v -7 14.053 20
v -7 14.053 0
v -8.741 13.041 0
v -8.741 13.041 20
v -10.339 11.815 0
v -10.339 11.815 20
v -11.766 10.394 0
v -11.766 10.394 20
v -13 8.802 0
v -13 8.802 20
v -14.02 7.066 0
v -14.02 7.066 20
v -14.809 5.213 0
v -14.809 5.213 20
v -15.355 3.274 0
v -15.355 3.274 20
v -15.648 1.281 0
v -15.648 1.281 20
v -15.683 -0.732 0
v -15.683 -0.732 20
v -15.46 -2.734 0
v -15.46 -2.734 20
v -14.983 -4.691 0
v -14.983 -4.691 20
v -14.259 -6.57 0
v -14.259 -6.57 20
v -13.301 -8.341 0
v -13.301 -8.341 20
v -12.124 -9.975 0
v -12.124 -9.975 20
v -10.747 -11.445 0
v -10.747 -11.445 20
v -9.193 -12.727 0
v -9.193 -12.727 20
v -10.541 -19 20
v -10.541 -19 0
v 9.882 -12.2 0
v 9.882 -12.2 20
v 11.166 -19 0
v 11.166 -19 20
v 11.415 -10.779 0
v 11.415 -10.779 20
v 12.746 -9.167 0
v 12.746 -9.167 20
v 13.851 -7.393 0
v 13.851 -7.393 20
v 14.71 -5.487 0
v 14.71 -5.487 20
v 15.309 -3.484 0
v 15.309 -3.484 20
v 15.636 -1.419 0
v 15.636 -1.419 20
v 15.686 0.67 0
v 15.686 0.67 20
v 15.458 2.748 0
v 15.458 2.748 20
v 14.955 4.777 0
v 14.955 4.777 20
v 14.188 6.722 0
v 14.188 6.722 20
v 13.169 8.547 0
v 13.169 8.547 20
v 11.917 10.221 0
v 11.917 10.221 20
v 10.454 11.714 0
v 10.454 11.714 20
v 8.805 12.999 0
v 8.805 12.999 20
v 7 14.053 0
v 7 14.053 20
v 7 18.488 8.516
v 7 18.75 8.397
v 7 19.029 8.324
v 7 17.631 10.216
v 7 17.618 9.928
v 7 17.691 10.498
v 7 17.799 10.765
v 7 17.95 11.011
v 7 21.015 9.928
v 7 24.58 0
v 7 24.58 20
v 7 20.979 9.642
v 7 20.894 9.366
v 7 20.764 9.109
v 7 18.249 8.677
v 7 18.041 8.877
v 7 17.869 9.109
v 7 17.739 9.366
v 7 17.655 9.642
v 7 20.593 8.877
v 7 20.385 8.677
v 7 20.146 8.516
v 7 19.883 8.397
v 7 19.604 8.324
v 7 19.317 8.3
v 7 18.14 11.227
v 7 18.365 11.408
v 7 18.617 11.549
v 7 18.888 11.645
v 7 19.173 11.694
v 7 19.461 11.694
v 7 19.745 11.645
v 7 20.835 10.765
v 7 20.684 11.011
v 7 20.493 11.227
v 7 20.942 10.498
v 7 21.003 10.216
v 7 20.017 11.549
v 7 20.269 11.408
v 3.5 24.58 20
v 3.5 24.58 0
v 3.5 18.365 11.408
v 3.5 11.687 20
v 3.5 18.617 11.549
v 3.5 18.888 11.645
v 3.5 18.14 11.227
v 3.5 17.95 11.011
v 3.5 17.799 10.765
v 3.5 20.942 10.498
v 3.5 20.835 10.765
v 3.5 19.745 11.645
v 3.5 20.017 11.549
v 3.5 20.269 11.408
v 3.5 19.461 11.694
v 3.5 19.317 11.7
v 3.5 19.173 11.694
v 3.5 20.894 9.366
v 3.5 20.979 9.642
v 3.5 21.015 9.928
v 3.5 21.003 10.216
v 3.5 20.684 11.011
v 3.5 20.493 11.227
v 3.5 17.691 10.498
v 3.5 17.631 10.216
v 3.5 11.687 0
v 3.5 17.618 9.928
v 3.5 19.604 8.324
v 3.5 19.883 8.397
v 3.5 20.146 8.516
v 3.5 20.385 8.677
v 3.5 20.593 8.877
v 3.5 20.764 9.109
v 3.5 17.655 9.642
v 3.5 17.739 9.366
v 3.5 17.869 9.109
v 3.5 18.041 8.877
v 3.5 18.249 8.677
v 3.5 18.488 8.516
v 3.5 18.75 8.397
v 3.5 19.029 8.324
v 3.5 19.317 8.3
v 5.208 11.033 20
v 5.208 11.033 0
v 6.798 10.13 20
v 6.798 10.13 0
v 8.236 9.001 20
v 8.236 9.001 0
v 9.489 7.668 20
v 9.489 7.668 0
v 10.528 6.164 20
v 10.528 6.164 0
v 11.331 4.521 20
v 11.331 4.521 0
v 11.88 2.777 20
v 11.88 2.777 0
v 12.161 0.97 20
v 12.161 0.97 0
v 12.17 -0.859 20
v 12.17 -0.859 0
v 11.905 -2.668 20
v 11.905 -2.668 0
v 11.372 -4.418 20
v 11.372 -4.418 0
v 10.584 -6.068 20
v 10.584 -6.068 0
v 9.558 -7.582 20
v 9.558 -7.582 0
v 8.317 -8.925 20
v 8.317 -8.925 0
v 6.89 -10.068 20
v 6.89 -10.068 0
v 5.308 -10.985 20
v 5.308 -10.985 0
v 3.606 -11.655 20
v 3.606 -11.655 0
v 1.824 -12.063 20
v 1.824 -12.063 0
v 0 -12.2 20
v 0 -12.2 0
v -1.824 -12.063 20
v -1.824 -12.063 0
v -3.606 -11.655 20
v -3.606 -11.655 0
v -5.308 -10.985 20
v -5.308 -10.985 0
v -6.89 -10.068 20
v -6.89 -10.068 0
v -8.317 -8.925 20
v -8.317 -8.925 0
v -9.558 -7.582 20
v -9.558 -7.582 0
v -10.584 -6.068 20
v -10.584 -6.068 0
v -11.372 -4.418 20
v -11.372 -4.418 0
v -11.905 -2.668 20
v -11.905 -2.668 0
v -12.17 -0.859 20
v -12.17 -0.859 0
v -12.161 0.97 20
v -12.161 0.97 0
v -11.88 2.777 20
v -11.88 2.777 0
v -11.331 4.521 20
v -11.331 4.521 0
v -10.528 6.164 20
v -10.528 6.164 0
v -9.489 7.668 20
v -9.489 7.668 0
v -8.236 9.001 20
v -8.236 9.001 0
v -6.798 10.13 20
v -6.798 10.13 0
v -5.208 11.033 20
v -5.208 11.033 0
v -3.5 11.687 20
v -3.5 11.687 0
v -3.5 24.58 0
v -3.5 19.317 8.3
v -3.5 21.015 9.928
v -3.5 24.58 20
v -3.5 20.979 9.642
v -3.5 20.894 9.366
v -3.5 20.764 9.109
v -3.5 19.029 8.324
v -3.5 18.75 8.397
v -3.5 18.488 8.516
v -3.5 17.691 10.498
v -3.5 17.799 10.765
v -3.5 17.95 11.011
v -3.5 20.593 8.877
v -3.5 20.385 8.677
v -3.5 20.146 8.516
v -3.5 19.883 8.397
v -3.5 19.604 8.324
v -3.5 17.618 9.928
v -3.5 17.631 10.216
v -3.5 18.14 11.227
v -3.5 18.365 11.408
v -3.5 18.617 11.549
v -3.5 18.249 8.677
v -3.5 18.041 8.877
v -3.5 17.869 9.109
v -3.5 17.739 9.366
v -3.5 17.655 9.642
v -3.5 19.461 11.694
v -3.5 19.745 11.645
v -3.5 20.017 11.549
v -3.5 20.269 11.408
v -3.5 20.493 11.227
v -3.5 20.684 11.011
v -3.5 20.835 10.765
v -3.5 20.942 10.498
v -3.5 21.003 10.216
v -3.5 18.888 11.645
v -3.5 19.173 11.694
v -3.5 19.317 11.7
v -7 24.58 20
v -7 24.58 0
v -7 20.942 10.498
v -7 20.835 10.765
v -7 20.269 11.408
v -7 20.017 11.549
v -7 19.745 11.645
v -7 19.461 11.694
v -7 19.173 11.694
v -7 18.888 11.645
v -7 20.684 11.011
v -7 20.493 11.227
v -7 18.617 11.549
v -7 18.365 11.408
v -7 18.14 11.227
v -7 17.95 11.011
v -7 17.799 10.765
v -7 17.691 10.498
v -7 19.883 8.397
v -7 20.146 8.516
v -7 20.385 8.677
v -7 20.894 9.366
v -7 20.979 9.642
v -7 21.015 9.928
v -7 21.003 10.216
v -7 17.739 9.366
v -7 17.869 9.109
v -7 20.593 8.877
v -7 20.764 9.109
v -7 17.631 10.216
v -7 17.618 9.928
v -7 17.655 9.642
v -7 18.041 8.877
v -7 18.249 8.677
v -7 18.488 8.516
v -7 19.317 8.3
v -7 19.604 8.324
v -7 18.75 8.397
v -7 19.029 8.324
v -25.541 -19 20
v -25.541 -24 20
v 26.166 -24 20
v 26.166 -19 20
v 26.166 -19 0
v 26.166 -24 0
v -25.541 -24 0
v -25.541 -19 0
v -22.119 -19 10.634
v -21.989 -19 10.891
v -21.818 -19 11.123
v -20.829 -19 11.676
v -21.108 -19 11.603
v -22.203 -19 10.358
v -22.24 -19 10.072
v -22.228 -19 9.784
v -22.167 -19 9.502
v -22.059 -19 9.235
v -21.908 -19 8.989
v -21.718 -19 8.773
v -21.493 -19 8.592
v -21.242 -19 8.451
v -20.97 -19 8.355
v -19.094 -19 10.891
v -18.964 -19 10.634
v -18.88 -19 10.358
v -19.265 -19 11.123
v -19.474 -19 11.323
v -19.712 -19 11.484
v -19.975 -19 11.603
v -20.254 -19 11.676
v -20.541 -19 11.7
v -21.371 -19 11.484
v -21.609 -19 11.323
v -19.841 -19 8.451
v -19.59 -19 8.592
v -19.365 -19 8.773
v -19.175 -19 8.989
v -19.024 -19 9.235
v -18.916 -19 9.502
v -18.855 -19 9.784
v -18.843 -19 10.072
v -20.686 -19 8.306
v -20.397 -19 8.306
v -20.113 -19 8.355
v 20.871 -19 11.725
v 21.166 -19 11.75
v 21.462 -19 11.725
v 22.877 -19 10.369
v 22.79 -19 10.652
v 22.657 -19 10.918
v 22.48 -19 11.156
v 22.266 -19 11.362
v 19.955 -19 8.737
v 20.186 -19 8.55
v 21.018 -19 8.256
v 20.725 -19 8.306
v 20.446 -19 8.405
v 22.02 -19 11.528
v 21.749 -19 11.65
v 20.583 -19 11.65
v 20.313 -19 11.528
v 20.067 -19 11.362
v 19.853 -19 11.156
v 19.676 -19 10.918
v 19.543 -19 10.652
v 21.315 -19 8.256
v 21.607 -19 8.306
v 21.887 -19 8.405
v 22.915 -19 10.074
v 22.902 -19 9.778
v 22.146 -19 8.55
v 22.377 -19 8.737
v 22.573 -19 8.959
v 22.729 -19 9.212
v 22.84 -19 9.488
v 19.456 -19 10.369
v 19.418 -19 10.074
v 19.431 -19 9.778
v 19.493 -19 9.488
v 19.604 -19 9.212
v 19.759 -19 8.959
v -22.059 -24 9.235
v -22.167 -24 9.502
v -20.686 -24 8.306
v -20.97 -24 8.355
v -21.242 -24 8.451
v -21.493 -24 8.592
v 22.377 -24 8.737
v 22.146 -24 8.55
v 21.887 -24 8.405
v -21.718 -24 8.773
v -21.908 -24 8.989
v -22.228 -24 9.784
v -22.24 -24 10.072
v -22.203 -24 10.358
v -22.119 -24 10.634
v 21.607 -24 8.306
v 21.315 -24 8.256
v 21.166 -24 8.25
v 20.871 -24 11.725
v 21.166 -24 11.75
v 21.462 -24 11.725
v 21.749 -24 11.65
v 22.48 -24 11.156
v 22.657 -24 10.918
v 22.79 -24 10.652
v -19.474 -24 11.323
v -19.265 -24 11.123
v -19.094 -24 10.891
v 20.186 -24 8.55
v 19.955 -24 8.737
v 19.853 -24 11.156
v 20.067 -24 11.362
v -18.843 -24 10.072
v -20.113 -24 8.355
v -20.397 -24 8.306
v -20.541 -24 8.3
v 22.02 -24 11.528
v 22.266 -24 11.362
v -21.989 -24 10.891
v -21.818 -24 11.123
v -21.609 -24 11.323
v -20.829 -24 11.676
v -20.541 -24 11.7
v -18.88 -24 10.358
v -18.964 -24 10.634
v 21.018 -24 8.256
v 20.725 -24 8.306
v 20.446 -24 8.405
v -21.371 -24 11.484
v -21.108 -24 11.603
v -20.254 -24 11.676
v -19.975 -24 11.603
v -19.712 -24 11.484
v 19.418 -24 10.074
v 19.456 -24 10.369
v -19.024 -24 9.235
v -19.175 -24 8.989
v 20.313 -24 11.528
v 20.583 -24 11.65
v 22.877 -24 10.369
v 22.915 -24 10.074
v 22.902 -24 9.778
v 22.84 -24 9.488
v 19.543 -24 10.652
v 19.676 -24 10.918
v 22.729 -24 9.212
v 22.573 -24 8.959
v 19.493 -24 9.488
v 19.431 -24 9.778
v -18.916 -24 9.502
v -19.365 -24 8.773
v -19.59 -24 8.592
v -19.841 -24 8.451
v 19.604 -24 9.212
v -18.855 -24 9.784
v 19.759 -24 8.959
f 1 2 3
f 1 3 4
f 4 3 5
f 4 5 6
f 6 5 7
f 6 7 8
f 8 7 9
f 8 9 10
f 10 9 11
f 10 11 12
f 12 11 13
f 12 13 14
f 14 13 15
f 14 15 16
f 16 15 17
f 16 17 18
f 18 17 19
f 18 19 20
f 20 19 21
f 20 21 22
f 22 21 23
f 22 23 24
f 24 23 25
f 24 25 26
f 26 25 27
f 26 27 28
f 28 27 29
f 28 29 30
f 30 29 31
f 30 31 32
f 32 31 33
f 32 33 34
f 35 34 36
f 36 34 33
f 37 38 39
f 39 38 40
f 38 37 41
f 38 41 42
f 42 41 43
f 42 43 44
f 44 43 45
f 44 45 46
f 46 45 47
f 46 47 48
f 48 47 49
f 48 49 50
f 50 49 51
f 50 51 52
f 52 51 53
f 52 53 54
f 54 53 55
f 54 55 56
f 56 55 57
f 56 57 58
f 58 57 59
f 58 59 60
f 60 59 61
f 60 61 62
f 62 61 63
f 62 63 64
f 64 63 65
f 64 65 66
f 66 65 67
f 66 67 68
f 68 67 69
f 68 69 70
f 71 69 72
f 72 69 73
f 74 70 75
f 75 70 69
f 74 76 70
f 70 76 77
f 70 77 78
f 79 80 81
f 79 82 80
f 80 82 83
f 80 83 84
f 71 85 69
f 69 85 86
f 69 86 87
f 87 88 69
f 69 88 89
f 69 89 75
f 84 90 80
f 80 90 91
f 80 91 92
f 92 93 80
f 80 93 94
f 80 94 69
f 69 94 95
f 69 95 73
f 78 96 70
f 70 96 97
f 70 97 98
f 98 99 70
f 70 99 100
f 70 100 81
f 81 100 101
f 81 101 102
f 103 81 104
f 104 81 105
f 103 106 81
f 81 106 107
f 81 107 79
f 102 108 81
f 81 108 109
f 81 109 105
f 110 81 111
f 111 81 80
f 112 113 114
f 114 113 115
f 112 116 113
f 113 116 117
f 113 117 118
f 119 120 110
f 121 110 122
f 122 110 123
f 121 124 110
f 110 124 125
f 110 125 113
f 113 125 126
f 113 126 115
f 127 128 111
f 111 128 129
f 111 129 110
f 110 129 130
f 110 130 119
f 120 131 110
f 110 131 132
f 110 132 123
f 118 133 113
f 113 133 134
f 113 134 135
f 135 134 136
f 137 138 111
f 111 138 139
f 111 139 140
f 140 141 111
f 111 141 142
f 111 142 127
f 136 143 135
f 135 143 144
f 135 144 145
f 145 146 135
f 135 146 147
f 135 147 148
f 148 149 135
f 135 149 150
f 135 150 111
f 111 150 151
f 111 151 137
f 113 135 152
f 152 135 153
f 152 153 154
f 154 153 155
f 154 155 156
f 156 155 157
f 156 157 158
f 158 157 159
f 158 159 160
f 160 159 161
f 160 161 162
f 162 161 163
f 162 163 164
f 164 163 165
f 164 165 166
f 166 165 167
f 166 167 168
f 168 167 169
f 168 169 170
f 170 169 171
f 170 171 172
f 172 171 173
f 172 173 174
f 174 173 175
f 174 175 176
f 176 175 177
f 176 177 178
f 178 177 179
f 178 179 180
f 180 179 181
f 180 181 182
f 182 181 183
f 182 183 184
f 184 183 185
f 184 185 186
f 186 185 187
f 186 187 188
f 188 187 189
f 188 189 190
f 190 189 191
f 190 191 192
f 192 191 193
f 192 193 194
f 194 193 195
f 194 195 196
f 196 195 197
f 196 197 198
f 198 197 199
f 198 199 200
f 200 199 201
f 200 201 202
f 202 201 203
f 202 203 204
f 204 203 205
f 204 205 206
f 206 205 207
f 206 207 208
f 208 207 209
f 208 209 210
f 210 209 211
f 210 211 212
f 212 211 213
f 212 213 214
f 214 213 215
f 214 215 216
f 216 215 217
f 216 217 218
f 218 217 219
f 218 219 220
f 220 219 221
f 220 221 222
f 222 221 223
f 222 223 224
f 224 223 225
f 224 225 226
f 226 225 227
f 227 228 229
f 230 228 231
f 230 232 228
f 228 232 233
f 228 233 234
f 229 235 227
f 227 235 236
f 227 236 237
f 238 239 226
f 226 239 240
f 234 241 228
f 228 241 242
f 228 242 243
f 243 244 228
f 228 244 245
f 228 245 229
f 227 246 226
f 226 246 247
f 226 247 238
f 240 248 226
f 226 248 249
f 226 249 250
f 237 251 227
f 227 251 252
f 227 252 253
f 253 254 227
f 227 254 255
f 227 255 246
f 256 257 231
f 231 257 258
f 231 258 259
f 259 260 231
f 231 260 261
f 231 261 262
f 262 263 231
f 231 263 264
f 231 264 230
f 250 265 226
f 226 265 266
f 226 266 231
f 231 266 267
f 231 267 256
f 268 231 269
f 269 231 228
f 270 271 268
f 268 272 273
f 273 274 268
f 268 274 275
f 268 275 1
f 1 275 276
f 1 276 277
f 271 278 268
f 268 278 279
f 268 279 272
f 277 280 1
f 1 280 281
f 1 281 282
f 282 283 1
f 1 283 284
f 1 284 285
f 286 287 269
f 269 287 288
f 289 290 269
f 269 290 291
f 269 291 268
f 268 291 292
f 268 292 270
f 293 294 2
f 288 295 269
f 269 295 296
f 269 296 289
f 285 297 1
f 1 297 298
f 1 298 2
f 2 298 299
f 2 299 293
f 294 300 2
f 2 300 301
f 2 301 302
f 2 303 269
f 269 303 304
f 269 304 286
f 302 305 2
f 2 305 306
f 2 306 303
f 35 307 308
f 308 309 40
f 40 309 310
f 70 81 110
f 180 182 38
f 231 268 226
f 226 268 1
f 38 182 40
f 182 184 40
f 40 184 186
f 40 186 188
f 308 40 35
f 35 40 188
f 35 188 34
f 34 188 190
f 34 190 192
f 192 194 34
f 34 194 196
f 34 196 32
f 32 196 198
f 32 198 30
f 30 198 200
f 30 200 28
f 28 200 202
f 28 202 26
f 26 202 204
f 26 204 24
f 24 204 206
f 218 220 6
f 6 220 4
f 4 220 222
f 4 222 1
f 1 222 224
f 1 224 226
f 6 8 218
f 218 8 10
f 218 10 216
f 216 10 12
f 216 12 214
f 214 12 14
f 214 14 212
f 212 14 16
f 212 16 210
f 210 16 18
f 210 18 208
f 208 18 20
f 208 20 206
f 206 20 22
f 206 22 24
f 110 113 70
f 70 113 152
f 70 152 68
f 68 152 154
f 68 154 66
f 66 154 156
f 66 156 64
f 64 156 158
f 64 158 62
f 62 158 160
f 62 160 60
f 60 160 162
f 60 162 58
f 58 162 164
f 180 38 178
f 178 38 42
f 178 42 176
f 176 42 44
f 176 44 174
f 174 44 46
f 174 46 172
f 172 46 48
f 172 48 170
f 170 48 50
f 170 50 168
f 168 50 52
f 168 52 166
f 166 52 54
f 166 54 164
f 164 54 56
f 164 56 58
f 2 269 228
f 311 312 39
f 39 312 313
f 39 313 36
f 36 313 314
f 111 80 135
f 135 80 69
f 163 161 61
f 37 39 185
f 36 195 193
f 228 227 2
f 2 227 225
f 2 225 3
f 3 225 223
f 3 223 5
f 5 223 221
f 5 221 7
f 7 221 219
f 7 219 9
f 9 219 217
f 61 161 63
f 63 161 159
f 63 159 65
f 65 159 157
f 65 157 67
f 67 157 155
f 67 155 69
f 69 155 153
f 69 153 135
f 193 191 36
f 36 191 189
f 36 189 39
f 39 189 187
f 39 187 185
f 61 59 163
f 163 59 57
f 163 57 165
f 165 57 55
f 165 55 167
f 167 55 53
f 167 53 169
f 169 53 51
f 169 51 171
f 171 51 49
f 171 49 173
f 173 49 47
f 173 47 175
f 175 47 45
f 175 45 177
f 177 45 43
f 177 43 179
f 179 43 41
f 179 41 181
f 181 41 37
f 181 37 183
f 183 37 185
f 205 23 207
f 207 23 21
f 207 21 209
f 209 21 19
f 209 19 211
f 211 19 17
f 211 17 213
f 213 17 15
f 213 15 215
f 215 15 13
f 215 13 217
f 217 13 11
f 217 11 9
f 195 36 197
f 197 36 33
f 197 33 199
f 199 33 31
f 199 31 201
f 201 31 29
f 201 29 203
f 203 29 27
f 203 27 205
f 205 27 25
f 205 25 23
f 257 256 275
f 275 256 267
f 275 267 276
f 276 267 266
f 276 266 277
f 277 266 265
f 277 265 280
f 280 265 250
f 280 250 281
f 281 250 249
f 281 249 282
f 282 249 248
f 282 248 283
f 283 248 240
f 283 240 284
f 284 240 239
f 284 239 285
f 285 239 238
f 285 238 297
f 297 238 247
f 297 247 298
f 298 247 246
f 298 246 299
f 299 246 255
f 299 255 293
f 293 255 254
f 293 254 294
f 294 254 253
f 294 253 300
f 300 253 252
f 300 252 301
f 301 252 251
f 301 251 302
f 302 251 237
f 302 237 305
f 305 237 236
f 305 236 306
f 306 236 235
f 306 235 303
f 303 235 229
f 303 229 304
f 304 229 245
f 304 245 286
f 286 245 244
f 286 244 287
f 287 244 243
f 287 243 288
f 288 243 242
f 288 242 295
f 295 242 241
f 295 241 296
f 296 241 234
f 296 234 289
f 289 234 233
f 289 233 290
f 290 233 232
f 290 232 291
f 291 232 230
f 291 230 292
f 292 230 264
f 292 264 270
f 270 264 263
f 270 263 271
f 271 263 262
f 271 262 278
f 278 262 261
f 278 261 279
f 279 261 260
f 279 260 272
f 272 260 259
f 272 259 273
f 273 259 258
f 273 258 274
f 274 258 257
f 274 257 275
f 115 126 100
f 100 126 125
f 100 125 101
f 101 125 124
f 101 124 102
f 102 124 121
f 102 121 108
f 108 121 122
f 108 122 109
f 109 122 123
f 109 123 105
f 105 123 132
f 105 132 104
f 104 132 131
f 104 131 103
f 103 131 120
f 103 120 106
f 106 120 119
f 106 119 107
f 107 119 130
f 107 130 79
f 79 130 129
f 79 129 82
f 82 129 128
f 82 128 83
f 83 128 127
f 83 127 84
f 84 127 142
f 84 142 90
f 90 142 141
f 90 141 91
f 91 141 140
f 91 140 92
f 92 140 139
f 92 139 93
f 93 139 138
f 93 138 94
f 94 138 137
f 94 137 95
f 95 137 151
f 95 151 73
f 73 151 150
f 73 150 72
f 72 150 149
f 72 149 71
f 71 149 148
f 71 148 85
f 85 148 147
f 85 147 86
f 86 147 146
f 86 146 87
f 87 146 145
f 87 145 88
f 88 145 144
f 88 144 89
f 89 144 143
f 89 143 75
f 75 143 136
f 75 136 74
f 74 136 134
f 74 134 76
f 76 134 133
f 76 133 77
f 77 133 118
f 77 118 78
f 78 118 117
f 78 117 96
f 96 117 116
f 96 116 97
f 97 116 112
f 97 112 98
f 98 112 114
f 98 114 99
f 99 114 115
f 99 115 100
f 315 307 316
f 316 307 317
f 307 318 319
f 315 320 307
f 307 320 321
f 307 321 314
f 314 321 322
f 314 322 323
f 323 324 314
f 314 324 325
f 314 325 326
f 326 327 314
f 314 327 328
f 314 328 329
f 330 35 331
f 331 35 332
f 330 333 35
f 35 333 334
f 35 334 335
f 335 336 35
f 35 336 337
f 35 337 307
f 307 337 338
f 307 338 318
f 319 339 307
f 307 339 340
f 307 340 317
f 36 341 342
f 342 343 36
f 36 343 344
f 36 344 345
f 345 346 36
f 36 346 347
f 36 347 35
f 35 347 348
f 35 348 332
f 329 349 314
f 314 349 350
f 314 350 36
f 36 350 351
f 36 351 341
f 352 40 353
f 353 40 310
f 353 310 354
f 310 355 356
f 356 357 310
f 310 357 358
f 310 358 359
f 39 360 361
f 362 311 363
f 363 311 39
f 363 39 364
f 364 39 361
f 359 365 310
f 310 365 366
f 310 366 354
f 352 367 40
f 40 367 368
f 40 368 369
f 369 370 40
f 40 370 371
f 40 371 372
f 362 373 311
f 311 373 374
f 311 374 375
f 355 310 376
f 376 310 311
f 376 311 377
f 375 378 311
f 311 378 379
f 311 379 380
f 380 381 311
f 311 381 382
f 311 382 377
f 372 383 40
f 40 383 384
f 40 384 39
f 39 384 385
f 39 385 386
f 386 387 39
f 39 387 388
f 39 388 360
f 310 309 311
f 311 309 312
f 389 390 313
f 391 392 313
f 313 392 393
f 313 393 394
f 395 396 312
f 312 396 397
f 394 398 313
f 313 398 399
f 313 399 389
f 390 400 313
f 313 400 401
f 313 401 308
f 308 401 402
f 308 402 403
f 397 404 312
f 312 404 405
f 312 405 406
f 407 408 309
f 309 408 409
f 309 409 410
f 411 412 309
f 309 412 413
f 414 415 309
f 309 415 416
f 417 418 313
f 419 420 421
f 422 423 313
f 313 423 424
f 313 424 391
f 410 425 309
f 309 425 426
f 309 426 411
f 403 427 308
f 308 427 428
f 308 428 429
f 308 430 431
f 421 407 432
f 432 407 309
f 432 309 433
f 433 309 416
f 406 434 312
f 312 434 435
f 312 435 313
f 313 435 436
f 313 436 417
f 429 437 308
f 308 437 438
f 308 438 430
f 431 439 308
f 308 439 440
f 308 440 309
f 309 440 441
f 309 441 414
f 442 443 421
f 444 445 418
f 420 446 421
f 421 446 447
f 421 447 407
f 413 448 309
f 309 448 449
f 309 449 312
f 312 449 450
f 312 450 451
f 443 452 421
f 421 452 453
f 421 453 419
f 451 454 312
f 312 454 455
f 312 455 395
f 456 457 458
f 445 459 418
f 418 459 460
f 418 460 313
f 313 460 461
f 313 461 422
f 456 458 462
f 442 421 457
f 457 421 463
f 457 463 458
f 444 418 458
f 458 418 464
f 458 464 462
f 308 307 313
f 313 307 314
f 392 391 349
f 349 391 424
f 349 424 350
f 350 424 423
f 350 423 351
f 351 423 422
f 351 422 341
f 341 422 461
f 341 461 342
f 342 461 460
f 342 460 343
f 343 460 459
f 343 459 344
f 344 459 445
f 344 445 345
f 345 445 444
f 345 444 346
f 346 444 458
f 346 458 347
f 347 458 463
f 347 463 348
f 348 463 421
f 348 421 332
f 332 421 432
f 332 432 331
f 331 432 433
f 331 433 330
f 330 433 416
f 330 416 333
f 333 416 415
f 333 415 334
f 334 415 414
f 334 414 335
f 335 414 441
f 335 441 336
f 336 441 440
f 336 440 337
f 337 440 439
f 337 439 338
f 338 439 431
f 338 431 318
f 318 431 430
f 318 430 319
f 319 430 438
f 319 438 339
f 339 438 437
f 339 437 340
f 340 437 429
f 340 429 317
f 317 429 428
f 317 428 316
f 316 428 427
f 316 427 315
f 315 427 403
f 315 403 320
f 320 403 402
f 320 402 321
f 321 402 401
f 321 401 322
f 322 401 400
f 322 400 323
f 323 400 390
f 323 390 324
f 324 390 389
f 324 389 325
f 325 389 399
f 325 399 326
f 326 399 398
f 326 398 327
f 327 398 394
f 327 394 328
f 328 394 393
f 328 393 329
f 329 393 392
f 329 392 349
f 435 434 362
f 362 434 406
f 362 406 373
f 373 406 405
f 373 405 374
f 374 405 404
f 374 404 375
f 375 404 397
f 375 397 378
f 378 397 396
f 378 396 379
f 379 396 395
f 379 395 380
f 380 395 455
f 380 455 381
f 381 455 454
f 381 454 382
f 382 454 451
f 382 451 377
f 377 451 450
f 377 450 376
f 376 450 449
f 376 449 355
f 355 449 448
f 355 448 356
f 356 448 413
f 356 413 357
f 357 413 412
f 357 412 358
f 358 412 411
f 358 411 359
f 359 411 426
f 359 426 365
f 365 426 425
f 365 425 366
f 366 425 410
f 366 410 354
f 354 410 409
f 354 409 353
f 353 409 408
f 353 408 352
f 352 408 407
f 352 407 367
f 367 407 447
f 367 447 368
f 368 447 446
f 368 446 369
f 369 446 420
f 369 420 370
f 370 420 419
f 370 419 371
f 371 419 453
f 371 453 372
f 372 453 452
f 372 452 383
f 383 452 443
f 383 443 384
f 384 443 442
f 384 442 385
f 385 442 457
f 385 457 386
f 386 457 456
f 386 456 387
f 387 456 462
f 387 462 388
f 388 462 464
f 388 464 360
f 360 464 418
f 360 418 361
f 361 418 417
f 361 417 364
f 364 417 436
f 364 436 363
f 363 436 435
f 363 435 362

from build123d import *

# Parameters (mm, degrees)
Y_KSEKLIK_EKSTR_ZYON1_DEPTH = 20
IZIM6_R                     = 1.7
KES_EKSTR_ZYON2_DEPTH       = 20
KES_EKSTR_ZYON3_DEPTH       = 46
Y_KSEKLIK_EKSTR_ZYON2_DEPTH = 20
IZIM9_R                     = 1.7
IZIM9_R_2                   = 1.75
KES_EKSTR_ZYON4_DEPTH       = 46


with BuildPart() as part:
    # Çizim1 → Yükseklik-Ekstrüzyon1 (new body)
    with BuildSketch(Plane.XY):
        with BuildLine():
            Line((-3.5, 11.687172455), (-3.5, 20.580454312))
            Line((-3.5, 20.580454312), (-3.5, 24.580454312))
            Line((-3.5, 24.580454312), (-7, 24.580454312))
            Line((-7, 24.580454312), (-7, 20.580454312))
            Line((-7, 20.580454312), (-7, 14.053113534))
            ThreePointArc((-7, 14.053113534), (-15.647613909, 1.281475299), (-9.19317791, -12.726958785))
            Line((-9.19317791, -12.726958785), (-15.7, -43))
            Line((-15.7, -43), (15.7, -43))
            Line((15.7, -43), (9.881801455, -12.2))
            ThreePointArc((9.881801455, -12.2), (15.606258285, 1.713097297), (7, 14.053113534))
            Line((7, 14.053113534), (7, 20.580454312))
            Line((7, 20.580454312), (7, 24.580454312))
            Line((7, 24.580454312), (3.5, 24.580454312))
            Line((3.5, 24.580454312), (3.5, 20.580454312))
            Line((3.5, 20.580454312), (3.5, 11.687172455))
            ThreePointArc((3.5, 11.687172455), (0, -12.2), (-3.5, 11.687172455))
        make_face()
    extrude(amount=Y_KSEKLIK_EKSTR_ZYON1_DEPTH)

    # Çizim6 → Kes-Ekstrüzyon2 (cut)
    with BuildSketch(Plane(origin=(7, 0, 0), x_dir=(0, 0, -1), z_dir=(1, 0, 0))):
        with Locations((-10, 19.316783923)):
            Circle(IZIM6_R)
    extrude(amount=-KES_EKSTR_ZYON2_DEPTH, mode=Mode.SUBTRACT)

    # Çizim7 → Kes-Ekstrüzyon3 (cut)
    with BuildSketch(Plane.XY.offset(20)):
        Polygon((-15.7, -43), (-15.7, -19), (23.821750054, -19), (23.821750054, -48.375532492), (-15.7, -48.375532492), align=None)
    extrude(amount=-KES_EKSTR_ZYON3_DEPTH, mode=Mode.SUBTRACT)

    # Çizim8 → Yükseklik-Ekstrüzyon2 (add)
    with BuildSketch(Plane.XY.offset(20)):
        Polygon((-10.541491839, -19), (-25.541491839, -19), (-25.541491839, -24), (11.166338796, -24), (26.166338796, -24), (26.166338796, -19), (11.166338796, -19), align=None)
    extrude(amount=-Y_KSEKLIK_EKSTR_ZYON2_DEPTH)

    # Çizim9 → Kes-Ekstrüzyon4 (cut)
    with BuildSketch(Plane(origin=(0, -19, 0), x_dir=(1, 0, 0), z_dir=(0, 1, 0))):
        with Locations(Location((-20.541491839, -10, 0), (0, 0, 270))):
            Circle(IZIM9_R)
        with Locations(Location((21.166338796, -10, 0), (0, 0, 270))):
            Circle(IZIM9_R_2)
    extrude(amount=-KES_EKSTR_ZYON4_DEPTH, mode=Mode.SUBTRACT)


solid = part.part
